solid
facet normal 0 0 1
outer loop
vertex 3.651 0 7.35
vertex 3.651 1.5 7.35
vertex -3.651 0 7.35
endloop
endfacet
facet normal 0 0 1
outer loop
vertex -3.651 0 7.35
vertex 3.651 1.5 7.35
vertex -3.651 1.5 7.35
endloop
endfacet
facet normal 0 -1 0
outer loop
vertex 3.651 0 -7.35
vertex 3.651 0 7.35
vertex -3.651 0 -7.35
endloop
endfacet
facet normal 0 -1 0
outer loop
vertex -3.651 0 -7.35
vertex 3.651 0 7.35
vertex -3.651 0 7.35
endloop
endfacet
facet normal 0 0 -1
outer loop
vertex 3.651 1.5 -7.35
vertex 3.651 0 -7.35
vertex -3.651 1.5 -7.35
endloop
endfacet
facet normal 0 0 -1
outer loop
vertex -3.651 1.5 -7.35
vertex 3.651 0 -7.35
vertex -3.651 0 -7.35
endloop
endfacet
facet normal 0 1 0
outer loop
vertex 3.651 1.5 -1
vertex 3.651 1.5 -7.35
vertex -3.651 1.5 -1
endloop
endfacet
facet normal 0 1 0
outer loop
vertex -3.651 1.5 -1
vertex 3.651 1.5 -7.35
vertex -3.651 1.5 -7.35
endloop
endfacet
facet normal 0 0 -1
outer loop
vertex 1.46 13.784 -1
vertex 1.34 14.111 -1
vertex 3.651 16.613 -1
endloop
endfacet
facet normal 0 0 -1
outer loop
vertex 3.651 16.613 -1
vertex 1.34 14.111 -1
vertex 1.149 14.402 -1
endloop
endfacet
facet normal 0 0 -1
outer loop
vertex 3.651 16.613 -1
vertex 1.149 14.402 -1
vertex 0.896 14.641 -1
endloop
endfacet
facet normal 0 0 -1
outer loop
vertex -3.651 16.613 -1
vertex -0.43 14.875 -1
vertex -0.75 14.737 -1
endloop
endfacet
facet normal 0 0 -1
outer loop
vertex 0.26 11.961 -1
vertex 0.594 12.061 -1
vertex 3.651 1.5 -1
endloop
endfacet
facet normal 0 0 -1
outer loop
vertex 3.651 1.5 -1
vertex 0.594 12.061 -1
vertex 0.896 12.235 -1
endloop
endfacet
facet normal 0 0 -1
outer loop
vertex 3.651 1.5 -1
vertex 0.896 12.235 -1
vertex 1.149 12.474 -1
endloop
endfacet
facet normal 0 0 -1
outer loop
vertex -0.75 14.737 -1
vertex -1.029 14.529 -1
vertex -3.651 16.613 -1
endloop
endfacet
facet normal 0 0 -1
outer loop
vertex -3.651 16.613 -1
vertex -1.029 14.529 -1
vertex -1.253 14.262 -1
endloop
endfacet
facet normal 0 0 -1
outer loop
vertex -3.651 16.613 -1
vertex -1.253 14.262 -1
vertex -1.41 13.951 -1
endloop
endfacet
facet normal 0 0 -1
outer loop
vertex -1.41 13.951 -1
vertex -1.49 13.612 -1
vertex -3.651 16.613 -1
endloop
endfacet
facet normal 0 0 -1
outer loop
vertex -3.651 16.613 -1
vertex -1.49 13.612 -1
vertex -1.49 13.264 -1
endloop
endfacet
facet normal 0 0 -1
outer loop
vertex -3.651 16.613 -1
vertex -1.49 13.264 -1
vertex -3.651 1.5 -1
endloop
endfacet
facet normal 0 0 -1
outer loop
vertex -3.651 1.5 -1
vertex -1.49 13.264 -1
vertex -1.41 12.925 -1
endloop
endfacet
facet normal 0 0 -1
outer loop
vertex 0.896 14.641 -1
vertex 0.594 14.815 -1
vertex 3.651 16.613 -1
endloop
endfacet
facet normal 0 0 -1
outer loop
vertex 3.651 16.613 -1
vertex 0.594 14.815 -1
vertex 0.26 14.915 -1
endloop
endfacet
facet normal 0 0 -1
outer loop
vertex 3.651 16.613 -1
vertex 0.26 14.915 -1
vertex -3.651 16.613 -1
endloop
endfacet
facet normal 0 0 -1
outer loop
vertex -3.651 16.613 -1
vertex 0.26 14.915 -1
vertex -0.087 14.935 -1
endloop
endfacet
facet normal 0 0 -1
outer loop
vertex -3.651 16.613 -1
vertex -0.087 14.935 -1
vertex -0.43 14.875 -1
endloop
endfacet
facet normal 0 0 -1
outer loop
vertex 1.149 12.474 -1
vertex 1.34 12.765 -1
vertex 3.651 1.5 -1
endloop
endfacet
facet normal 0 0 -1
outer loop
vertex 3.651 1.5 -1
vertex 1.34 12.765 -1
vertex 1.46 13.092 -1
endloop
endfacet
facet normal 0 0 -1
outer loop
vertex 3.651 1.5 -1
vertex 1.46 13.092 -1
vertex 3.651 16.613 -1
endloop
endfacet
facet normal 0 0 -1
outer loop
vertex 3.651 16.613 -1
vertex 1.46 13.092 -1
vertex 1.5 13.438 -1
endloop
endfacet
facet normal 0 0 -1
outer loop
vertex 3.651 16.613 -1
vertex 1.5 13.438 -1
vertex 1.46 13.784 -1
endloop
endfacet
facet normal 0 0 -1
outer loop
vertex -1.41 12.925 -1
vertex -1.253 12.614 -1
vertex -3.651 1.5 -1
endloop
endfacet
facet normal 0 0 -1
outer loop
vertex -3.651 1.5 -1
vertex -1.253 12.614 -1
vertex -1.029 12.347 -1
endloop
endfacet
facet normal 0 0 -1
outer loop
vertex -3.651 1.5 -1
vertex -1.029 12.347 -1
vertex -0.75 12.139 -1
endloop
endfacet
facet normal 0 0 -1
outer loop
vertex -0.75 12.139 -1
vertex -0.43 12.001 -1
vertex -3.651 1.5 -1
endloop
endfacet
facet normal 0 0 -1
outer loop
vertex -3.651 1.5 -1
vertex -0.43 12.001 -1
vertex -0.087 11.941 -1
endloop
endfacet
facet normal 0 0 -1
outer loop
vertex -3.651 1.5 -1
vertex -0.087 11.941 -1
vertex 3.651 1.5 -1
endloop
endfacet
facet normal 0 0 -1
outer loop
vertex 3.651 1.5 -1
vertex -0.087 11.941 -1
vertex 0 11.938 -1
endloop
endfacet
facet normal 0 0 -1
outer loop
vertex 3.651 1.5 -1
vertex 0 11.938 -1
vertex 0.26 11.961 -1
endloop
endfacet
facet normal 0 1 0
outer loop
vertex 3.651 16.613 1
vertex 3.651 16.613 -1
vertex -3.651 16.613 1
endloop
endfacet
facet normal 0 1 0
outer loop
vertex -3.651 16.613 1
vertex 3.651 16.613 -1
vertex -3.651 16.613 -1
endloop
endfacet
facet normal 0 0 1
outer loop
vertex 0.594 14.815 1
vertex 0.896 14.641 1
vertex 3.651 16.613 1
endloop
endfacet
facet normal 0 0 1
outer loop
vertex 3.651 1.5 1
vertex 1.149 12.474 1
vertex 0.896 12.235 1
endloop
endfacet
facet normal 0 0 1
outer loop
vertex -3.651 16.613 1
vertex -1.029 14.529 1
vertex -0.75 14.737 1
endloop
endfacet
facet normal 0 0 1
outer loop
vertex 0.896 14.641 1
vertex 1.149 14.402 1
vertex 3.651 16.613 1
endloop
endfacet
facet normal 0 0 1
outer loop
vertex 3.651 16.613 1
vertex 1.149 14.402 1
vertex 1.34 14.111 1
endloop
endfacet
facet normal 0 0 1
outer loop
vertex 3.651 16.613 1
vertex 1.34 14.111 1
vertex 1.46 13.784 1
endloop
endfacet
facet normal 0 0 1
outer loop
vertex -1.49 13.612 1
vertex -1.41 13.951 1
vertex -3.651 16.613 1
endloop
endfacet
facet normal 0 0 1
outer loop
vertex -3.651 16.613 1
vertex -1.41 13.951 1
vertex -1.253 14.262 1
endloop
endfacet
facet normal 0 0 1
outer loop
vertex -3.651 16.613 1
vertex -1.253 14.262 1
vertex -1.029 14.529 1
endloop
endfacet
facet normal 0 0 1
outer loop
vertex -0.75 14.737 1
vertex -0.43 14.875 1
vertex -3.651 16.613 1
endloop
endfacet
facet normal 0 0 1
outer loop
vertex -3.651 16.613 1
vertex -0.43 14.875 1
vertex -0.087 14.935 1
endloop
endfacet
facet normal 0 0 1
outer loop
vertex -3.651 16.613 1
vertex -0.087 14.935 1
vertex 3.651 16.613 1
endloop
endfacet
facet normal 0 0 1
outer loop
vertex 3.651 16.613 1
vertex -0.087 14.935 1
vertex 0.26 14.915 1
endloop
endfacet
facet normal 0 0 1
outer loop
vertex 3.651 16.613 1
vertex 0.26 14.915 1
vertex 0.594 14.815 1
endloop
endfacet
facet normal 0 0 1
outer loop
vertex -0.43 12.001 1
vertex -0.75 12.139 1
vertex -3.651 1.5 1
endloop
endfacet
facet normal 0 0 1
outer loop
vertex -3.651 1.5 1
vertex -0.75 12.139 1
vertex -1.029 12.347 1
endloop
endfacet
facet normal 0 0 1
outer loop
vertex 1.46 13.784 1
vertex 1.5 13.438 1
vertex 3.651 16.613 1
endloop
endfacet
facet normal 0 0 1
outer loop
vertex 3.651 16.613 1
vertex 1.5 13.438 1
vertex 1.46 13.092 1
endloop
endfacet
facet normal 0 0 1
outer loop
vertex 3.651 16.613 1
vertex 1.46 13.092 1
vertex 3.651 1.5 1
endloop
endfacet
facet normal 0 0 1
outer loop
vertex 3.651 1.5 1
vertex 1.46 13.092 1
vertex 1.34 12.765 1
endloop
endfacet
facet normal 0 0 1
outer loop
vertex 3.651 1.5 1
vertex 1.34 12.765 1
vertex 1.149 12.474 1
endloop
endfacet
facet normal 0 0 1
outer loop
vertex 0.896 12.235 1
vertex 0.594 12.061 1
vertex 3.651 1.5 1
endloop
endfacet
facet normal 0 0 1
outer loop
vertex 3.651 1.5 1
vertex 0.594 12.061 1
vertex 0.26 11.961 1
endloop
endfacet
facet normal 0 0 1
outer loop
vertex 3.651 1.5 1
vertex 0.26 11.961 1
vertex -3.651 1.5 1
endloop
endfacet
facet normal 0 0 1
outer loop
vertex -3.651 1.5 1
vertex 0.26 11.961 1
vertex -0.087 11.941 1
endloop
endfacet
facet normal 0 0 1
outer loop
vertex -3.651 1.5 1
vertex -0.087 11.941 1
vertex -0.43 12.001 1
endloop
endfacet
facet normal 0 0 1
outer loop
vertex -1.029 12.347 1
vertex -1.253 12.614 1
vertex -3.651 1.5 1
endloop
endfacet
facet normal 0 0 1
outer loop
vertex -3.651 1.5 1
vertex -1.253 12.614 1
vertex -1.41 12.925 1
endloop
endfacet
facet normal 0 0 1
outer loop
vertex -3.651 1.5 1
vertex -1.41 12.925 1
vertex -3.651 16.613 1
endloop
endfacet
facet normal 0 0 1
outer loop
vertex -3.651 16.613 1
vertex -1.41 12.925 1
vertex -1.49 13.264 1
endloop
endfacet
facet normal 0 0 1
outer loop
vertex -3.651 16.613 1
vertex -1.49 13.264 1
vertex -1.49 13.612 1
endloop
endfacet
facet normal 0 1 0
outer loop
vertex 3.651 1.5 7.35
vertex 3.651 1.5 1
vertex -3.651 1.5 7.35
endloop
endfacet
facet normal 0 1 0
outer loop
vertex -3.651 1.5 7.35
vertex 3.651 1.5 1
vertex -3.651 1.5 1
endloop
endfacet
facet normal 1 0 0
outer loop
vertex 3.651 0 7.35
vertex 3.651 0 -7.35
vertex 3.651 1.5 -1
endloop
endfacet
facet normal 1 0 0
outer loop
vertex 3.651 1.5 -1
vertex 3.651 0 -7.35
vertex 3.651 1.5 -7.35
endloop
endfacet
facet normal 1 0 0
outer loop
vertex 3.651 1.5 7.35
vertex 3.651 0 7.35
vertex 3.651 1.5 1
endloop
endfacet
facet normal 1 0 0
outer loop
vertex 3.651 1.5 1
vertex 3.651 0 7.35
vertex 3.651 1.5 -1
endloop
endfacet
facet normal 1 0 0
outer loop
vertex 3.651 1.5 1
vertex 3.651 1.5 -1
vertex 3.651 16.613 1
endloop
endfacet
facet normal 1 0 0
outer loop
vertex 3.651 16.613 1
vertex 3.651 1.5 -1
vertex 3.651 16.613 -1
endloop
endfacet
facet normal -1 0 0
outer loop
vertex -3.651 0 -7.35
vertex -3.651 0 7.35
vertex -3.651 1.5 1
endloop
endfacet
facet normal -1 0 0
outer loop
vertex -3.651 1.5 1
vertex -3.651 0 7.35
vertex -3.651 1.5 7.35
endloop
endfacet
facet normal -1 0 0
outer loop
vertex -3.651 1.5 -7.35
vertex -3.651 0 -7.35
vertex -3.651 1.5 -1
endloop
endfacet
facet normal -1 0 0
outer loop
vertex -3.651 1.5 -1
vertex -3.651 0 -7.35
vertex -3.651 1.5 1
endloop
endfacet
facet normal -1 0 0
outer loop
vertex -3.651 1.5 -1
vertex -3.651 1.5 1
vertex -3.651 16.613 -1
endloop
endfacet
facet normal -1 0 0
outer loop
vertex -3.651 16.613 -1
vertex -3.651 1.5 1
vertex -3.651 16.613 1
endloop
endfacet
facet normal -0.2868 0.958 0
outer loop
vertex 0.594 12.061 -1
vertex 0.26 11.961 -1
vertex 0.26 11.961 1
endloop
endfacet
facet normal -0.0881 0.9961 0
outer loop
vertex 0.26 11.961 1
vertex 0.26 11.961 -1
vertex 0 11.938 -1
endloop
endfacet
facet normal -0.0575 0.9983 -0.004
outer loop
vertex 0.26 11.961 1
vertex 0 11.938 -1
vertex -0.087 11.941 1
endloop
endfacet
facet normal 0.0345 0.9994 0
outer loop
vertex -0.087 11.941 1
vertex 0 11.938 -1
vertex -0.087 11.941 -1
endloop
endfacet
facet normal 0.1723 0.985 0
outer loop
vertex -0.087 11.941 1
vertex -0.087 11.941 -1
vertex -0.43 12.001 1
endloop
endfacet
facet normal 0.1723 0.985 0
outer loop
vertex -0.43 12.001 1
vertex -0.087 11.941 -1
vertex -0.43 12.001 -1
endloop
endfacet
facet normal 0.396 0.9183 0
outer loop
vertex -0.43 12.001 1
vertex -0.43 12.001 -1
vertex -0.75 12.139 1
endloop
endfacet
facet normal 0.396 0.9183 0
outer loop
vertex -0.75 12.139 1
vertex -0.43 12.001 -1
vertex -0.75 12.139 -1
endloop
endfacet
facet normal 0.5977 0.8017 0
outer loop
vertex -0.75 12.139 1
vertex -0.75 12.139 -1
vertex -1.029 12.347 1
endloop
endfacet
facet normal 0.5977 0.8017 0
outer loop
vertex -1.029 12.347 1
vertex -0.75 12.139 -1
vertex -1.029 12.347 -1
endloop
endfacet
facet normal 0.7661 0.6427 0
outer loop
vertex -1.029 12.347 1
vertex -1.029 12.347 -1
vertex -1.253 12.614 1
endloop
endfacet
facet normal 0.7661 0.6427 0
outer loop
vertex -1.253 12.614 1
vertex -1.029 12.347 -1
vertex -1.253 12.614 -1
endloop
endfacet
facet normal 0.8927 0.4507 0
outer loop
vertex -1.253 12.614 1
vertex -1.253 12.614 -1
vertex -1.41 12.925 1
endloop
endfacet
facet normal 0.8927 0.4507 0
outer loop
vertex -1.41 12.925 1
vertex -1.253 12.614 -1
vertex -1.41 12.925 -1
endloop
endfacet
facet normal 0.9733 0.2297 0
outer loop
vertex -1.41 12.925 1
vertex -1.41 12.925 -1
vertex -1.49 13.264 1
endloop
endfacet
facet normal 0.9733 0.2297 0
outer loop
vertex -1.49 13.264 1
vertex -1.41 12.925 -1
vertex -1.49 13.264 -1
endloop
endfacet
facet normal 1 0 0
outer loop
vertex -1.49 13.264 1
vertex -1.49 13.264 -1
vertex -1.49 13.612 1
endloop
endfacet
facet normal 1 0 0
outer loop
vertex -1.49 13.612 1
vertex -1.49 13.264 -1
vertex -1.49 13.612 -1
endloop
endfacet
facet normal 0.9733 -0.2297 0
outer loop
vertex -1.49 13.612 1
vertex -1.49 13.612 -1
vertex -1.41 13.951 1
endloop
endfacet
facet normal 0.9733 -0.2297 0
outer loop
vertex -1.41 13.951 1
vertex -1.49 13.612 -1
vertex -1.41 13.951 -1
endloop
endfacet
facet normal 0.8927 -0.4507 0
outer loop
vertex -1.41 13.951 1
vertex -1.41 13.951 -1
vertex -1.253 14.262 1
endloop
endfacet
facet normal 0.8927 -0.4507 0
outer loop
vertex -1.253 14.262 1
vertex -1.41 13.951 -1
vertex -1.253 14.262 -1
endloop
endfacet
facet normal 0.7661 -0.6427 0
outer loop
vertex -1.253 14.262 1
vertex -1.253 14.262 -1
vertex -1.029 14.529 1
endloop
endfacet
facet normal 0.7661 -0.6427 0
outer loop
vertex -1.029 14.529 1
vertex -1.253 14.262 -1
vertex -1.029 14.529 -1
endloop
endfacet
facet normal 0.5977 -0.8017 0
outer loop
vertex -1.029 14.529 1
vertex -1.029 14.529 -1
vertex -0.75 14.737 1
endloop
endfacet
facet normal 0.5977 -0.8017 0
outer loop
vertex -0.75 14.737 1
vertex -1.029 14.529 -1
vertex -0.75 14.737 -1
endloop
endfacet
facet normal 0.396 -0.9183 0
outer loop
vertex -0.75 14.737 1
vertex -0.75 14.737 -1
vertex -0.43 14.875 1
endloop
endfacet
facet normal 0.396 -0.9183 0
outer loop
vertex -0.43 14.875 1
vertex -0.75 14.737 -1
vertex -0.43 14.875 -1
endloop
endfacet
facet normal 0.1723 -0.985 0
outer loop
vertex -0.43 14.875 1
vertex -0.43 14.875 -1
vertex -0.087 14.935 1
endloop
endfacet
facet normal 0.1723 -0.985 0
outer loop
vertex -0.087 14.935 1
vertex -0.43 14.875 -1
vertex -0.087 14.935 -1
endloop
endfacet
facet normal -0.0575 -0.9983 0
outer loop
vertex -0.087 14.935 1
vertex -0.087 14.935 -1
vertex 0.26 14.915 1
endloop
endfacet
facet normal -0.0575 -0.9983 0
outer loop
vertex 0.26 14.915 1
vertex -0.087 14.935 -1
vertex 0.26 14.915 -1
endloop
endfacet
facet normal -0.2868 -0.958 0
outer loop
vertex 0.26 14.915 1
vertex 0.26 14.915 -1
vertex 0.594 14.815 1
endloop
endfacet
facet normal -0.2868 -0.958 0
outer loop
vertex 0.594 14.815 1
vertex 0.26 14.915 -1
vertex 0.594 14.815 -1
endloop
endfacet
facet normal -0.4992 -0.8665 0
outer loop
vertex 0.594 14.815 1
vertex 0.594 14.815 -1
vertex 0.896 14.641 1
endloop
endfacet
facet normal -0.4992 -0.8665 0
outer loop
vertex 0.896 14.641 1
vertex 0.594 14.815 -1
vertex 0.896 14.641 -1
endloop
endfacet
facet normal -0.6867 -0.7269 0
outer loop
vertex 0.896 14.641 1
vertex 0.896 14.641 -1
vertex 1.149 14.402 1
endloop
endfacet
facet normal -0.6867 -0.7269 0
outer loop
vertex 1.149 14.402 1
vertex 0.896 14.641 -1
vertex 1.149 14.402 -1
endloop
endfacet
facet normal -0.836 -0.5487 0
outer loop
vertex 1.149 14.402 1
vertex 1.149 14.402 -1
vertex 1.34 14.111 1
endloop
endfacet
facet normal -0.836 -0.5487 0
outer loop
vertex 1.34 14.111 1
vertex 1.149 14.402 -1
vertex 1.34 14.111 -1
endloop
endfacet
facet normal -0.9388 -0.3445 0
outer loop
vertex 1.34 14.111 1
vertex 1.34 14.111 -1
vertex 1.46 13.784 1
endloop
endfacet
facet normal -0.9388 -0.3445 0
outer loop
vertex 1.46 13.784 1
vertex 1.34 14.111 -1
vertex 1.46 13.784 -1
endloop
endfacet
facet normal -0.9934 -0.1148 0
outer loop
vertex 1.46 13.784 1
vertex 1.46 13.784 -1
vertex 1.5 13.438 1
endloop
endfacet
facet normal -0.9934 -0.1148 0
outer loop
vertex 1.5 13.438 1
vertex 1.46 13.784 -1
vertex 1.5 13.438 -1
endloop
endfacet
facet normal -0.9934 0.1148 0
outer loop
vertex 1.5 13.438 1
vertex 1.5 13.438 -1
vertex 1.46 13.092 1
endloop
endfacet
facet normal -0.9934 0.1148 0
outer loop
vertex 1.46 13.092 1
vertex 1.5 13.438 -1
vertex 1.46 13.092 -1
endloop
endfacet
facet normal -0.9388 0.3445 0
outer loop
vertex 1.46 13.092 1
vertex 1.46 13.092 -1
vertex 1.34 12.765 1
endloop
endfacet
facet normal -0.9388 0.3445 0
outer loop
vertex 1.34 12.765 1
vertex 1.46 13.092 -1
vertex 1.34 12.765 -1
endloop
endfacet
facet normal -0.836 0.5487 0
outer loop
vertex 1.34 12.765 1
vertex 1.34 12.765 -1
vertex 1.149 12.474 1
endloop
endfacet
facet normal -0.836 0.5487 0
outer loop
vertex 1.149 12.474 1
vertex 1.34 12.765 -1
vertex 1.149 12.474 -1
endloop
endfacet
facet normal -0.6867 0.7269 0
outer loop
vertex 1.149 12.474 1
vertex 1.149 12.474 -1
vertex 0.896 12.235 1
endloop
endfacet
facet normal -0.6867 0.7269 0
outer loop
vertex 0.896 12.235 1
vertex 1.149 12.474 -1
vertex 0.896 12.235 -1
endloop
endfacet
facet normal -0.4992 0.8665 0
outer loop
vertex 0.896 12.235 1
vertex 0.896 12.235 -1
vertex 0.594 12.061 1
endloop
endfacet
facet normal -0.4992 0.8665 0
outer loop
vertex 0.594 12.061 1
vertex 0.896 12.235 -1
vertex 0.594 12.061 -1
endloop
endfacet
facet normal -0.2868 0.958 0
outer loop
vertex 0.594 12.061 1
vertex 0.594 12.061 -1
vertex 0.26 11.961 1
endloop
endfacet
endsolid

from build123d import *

# Parameters (mm, degrees)
BOSS_EXTRUDE1_DEPTH = 3.65125
SKETCH3_R           = 1.5
CUT_EXTRUDE1_DEPTH  = 19.94850642


with BuildPart() as part:
    # Sketch1 → Boss-Extrude1 (new, symmetric)
    with BuildSketch(Plane(origin=(0, 0, 0), x_dir=(0, 0, -1), z_dir=(1, 0, 0))):
        Polygon((-7.35, 0), (7.35, 0), (7.35, 1.5), (1, 1.5), (1, 16.613), (-1, 16.613), (-1, 1.5), (-7.35, 1.5), align=None)
    extrude(amount=BOSS_EXTRUDE1_DEPTH, both=True)

    # Sketch3 → Cut-Extrude1 (cut, through all)
    with BuildSketch(Plane.XY.offset(1)):
        with Locations((0, 13.438)):
            Circle(SKETCH3_R)
    extrude(amount=-CUT_EXTRUDE1_DEPTH, mode=Mode.SUBTRACT)


solid = part.part
